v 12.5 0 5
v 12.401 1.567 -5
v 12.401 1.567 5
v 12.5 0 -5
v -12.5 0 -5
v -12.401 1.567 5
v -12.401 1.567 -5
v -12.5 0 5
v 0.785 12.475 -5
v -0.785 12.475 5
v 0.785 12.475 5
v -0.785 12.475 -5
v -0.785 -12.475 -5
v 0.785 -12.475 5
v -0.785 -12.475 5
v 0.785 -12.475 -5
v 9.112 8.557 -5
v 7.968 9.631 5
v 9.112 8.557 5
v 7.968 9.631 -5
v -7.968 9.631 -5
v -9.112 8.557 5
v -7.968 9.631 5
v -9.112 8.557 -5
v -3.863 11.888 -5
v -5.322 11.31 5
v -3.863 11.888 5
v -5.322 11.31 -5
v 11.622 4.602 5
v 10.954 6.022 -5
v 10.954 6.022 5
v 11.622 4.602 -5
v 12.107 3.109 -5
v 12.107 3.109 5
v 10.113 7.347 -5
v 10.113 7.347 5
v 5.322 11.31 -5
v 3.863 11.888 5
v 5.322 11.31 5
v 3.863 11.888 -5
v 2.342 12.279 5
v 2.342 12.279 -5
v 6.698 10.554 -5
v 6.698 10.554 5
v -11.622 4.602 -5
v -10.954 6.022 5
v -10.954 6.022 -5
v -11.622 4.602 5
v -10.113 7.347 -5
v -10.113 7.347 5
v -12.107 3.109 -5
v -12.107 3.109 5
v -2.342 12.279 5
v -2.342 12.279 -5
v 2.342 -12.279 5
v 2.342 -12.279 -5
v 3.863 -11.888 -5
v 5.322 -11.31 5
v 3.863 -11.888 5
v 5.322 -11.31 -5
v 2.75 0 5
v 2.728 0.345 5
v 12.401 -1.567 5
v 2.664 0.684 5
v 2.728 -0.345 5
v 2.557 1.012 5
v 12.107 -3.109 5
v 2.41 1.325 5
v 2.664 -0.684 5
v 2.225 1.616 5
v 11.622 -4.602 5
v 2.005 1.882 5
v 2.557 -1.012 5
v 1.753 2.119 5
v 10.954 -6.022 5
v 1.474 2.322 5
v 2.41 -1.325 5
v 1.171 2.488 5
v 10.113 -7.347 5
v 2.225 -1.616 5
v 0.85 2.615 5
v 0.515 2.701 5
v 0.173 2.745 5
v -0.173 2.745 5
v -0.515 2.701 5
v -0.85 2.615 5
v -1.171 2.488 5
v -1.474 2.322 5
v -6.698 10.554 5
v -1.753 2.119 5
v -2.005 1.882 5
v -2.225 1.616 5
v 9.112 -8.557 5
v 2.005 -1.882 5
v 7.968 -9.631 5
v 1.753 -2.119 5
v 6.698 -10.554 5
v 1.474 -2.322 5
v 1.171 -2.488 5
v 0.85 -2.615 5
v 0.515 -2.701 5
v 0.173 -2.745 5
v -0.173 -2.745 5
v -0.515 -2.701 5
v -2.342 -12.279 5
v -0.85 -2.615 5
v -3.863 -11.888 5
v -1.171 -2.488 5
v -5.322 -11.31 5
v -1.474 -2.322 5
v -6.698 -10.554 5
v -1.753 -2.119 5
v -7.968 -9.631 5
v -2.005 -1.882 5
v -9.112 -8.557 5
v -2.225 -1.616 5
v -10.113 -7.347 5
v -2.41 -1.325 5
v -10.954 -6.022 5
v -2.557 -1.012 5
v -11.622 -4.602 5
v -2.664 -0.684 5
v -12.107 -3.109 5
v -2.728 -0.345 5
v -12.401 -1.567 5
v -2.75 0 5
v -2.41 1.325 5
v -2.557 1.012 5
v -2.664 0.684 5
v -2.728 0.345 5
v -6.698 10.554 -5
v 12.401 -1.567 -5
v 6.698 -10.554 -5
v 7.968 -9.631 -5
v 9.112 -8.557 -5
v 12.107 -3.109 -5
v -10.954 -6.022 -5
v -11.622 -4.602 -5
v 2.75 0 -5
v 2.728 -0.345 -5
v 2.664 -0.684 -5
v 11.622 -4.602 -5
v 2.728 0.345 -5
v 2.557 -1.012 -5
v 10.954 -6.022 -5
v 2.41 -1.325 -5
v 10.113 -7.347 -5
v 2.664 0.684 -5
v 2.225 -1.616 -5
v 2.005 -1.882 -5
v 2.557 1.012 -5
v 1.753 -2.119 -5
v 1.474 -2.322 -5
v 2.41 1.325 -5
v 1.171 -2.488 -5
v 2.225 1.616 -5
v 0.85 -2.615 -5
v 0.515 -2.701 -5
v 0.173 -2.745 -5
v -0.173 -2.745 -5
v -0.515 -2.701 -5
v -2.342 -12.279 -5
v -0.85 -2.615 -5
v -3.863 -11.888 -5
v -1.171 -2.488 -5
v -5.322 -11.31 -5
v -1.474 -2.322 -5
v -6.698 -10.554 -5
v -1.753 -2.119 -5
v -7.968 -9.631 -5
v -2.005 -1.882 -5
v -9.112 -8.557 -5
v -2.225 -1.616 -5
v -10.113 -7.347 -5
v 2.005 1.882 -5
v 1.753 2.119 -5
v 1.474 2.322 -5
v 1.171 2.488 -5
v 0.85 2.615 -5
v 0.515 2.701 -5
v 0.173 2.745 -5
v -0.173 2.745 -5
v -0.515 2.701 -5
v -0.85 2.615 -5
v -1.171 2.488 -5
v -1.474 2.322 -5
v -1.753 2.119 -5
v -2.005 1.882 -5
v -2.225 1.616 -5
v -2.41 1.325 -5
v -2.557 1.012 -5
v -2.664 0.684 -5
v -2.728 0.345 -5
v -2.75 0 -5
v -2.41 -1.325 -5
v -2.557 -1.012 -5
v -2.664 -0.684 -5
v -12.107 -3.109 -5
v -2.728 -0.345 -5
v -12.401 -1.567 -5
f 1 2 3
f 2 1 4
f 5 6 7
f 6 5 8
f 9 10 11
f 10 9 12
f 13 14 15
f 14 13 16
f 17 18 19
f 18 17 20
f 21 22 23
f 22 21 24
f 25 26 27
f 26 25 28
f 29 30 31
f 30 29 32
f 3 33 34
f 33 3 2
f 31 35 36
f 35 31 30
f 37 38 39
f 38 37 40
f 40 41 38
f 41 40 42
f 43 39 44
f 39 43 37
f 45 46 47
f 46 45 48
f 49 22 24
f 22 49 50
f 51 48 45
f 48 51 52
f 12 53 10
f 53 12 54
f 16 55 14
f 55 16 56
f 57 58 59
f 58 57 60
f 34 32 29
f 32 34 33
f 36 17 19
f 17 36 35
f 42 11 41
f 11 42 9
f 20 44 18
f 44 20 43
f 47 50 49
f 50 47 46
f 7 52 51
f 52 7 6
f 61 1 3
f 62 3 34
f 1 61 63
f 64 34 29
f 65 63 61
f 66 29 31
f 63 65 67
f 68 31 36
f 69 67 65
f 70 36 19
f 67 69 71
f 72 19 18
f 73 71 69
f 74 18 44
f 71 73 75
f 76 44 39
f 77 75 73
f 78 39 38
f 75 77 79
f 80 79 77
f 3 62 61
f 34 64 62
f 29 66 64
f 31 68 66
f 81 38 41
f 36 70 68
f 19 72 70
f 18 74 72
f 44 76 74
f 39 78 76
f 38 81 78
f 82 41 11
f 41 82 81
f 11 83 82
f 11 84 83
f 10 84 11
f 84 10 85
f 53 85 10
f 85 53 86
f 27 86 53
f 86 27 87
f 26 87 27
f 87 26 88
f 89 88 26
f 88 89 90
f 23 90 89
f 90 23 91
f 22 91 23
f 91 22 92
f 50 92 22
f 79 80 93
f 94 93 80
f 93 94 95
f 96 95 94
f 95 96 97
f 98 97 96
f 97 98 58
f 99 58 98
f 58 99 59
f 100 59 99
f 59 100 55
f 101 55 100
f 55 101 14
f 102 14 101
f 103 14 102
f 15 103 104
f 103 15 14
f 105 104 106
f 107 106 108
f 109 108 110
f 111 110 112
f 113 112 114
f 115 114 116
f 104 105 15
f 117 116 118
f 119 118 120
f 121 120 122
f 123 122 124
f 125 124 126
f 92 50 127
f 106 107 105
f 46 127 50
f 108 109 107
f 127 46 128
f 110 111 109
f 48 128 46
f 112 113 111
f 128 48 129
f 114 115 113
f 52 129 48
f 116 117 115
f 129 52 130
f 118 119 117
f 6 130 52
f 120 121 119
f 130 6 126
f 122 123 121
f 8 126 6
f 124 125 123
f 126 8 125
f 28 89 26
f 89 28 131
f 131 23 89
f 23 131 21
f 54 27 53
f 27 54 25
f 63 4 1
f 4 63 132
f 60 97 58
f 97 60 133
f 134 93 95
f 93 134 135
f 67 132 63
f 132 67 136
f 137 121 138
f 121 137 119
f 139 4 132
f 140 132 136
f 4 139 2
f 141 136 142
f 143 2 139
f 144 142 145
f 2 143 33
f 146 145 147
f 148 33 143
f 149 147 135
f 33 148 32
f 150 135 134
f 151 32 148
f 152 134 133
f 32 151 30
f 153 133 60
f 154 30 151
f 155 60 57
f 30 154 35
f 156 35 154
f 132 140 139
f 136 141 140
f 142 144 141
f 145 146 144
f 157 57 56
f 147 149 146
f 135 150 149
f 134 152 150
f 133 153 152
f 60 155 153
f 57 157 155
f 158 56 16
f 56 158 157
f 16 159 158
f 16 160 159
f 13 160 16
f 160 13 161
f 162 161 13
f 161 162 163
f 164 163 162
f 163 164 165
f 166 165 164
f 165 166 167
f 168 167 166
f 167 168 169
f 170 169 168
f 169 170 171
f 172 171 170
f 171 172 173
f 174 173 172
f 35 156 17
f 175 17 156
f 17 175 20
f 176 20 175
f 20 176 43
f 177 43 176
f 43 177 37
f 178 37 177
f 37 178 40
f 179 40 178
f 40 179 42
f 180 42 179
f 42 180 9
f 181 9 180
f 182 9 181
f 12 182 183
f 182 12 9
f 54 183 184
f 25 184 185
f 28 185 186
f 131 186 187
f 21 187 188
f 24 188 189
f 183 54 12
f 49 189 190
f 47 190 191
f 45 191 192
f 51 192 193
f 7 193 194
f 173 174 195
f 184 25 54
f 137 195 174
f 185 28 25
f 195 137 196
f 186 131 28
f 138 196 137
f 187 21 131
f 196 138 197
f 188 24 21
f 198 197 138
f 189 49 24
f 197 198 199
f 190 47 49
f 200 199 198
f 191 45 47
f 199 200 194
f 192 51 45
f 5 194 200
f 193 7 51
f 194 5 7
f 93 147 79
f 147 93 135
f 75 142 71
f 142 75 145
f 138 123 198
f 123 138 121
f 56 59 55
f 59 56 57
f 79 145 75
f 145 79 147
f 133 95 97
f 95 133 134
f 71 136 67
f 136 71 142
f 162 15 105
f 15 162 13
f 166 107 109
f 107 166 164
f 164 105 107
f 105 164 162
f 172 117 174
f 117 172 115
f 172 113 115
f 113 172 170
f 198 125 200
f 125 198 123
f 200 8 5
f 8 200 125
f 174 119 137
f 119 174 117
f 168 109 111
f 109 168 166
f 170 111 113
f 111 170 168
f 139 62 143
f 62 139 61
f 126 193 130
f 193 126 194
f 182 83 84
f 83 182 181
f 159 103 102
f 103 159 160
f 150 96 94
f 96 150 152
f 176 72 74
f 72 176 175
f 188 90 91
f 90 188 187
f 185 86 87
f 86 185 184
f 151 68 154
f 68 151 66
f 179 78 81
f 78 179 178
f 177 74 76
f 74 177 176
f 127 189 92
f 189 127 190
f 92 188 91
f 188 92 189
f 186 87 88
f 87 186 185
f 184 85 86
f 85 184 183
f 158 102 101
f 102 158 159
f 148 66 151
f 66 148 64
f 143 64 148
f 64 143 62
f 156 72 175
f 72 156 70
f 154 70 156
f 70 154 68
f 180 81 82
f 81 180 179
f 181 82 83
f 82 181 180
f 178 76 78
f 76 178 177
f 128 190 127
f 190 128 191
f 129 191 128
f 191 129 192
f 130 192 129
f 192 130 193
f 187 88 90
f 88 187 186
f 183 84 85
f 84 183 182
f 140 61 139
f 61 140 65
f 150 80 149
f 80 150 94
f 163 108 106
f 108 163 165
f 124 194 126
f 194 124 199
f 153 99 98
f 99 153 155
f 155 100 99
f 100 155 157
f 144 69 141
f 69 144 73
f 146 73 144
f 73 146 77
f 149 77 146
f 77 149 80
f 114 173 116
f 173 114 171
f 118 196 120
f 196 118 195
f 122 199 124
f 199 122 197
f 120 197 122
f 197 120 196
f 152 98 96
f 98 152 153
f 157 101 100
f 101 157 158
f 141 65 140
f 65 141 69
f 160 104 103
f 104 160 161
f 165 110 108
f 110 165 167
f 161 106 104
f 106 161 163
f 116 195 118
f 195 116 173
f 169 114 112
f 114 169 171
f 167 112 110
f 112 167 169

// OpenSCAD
$fn = 50;


difference() {
	union() {
		translate(v = [0, 0, -5.0000000000]) {
			cylinder(h = 10, r = 12.5000000000);
		}
	}
	union() {
		translate(v = [0, 0, -100.0000000000]) {
			cylinder(h = 200, r = 2.7500000000);
		}
	}
}
